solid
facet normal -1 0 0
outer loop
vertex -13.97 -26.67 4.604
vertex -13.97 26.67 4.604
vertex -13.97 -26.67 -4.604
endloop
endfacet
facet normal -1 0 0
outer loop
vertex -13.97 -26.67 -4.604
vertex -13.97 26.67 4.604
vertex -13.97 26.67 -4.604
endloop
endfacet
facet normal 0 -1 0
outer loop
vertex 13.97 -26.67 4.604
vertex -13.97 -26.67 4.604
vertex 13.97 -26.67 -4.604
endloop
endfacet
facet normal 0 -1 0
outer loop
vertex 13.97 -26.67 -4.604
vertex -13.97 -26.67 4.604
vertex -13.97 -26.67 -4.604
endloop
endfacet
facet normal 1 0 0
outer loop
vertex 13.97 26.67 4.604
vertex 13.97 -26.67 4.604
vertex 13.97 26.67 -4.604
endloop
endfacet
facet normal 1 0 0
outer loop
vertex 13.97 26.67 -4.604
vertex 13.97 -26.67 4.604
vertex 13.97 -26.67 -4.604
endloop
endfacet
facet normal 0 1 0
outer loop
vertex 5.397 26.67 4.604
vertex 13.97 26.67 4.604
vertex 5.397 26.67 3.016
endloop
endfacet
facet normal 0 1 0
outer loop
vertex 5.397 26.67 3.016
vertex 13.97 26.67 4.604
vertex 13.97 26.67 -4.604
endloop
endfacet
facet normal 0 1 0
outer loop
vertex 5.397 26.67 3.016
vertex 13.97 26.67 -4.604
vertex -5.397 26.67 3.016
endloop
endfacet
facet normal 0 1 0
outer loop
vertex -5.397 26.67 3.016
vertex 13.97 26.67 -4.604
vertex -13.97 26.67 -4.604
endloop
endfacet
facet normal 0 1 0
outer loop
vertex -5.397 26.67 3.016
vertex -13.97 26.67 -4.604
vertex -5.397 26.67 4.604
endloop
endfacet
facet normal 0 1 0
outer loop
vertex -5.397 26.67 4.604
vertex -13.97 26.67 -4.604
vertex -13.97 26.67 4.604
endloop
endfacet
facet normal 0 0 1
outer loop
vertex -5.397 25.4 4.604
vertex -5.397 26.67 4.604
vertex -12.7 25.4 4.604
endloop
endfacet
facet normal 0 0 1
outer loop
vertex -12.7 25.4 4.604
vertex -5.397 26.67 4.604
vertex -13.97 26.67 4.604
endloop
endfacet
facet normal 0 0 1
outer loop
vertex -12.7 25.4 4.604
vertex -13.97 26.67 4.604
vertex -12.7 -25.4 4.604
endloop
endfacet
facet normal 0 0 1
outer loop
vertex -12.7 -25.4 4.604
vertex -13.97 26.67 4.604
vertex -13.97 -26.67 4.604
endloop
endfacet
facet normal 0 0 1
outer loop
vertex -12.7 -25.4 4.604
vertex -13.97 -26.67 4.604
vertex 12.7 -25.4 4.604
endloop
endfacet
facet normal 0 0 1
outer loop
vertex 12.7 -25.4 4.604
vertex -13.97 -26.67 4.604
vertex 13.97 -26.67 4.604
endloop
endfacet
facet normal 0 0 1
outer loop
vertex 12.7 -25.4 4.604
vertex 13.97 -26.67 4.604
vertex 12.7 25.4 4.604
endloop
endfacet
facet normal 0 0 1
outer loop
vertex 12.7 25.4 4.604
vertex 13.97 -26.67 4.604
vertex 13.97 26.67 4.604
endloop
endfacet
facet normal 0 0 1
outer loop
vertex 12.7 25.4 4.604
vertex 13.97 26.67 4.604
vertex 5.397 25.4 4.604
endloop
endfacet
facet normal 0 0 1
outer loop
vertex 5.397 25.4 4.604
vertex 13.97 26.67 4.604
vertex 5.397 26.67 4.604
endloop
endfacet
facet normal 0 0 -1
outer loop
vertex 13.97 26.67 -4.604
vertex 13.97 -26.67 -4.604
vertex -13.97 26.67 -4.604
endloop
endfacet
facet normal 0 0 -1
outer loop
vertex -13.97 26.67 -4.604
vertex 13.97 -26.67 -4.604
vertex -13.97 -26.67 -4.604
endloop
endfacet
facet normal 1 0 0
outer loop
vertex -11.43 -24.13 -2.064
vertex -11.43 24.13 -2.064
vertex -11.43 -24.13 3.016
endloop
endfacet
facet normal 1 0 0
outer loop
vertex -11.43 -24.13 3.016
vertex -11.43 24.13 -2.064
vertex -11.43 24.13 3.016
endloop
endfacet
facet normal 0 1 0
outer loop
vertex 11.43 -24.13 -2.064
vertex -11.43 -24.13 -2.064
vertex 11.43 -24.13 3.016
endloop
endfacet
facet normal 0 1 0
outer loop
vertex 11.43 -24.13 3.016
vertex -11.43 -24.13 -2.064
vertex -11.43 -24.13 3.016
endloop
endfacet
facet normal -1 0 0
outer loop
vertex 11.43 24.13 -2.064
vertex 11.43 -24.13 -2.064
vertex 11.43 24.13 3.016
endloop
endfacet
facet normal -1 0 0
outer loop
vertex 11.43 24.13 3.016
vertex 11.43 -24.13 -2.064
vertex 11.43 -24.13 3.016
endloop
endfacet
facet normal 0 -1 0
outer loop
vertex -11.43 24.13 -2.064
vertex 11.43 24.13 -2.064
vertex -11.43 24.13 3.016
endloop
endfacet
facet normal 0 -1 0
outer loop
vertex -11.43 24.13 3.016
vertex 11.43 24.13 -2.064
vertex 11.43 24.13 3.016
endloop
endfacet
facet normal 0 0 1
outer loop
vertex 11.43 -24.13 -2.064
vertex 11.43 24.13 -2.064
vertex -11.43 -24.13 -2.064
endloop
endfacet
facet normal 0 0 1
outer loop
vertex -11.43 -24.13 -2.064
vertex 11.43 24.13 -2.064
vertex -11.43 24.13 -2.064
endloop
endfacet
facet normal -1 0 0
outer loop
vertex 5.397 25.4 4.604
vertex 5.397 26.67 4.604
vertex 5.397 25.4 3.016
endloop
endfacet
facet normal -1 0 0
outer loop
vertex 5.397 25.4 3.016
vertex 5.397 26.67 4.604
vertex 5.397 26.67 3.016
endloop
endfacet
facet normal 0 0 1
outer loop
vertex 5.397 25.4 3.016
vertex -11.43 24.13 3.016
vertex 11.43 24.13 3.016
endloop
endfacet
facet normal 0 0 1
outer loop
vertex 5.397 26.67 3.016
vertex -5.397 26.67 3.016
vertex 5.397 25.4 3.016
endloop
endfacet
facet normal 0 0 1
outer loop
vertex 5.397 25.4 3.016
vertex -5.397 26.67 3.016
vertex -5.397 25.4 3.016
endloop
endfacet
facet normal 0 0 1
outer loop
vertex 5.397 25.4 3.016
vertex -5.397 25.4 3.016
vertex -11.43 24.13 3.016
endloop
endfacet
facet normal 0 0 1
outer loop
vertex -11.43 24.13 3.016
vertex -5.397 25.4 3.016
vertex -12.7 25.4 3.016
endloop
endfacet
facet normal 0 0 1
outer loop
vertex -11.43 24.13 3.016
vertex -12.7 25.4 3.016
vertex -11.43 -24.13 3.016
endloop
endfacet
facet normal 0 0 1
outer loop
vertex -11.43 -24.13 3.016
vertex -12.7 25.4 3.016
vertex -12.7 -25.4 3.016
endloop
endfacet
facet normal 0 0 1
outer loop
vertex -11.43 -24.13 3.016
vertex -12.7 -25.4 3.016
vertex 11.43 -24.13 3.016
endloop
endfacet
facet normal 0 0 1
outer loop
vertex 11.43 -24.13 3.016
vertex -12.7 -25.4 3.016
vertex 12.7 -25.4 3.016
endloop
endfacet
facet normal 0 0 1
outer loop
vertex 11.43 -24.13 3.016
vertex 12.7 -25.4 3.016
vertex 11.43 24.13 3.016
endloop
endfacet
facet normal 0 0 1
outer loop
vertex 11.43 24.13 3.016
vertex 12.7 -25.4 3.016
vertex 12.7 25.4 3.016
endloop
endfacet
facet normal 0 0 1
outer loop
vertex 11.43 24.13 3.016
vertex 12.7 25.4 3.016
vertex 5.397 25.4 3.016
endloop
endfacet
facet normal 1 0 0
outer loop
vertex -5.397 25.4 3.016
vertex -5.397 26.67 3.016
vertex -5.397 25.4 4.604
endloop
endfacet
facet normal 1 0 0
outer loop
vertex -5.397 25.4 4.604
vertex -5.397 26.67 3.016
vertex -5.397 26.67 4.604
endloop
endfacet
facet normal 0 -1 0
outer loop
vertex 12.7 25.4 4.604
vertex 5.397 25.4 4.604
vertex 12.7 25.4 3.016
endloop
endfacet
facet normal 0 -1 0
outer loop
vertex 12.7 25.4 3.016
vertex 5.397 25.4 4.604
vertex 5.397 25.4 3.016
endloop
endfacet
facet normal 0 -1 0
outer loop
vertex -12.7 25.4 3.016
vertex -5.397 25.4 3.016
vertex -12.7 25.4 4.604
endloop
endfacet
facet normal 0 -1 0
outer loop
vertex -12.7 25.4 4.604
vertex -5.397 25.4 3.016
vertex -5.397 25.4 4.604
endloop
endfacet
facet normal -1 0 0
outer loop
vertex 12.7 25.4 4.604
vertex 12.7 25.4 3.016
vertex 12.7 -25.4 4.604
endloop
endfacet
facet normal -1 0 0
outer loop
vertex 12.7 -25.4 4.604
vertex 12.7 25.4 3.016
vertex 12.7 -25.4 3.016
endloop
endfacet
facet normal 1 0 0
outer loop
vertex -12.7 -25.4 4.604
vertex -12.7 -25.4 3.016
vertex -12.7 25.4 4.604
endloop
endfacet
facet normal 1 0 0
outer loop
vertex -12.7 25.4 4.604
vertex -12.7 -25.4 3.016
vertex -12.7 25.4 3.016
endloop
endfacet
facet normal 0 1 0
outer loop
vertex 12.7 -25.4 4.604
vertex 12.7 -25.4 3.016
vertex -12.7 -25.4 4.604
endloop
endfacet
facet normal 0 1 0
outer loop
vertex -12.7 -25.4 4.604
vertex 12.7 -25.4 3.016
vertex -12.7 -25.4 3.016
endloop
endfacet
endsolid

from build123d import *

# Parameters (mm, degrees)
SKETCH1_W           = 27.94
SKETCH1_H           = 53.34
BOSS_EXTRUDE1_DEPTH = 4.60375
SHELL1_T            = -2.54
SKETCH2_W           = 10.795
SKETCH2_H           = 1.5875
CUT_EXTRUDE1_DEPTH  = 2.54
SKETCH3_W           = 25.4
SKETCH3_H           = 50.8
CUT_EXTRUDE2_DEPTH  = 1.5875


with BuildPart() as part:
    # Sketch1 → Boss-Extrude1 (new, symmetric)
    with BuildSketch(Plane.XY):
        Rectangle(SKETCH1_W, SKETCH1_H)
    extrude(amount=BOSS_EXTRUDE1_DEPTH, both=True)

    # Shell1
    shell1_openings = [part.faces().sort_by_distance(p)[0] for p in [
        (0, 0, 4.60375),
    ]]
    offset(amount=SHELL1_T, openings=shell1_openings, kind=Kind.INTERSECTION)

    # Sketch2 → Cut-Extrude1 (cut)
    with BuildSketch(Plane(origin=(0, 26.67, 0), x_dir=(1, 0, 0), z_dir=(0, 1, 0))):
        with Locations((0, -3.81)):
            Rectangle(SKETCH2_W, SKETCH2_H)
    extrude(amount=-CUT_EXTRUDE1_DEPTH, mode=Mode.SUBTRACT)

    # Sketch3 → Cut-Extrude2 (cut)
    with BuildSketch(Plane.XY.offset(4.60375)):
        Rectangle(SKETCH3_W, SKETCH3_H)
    extrude(amount=-CUT_EXTRUDE2_DEPTH, mode=Mode.SUBTRACT)


solid = part.part
